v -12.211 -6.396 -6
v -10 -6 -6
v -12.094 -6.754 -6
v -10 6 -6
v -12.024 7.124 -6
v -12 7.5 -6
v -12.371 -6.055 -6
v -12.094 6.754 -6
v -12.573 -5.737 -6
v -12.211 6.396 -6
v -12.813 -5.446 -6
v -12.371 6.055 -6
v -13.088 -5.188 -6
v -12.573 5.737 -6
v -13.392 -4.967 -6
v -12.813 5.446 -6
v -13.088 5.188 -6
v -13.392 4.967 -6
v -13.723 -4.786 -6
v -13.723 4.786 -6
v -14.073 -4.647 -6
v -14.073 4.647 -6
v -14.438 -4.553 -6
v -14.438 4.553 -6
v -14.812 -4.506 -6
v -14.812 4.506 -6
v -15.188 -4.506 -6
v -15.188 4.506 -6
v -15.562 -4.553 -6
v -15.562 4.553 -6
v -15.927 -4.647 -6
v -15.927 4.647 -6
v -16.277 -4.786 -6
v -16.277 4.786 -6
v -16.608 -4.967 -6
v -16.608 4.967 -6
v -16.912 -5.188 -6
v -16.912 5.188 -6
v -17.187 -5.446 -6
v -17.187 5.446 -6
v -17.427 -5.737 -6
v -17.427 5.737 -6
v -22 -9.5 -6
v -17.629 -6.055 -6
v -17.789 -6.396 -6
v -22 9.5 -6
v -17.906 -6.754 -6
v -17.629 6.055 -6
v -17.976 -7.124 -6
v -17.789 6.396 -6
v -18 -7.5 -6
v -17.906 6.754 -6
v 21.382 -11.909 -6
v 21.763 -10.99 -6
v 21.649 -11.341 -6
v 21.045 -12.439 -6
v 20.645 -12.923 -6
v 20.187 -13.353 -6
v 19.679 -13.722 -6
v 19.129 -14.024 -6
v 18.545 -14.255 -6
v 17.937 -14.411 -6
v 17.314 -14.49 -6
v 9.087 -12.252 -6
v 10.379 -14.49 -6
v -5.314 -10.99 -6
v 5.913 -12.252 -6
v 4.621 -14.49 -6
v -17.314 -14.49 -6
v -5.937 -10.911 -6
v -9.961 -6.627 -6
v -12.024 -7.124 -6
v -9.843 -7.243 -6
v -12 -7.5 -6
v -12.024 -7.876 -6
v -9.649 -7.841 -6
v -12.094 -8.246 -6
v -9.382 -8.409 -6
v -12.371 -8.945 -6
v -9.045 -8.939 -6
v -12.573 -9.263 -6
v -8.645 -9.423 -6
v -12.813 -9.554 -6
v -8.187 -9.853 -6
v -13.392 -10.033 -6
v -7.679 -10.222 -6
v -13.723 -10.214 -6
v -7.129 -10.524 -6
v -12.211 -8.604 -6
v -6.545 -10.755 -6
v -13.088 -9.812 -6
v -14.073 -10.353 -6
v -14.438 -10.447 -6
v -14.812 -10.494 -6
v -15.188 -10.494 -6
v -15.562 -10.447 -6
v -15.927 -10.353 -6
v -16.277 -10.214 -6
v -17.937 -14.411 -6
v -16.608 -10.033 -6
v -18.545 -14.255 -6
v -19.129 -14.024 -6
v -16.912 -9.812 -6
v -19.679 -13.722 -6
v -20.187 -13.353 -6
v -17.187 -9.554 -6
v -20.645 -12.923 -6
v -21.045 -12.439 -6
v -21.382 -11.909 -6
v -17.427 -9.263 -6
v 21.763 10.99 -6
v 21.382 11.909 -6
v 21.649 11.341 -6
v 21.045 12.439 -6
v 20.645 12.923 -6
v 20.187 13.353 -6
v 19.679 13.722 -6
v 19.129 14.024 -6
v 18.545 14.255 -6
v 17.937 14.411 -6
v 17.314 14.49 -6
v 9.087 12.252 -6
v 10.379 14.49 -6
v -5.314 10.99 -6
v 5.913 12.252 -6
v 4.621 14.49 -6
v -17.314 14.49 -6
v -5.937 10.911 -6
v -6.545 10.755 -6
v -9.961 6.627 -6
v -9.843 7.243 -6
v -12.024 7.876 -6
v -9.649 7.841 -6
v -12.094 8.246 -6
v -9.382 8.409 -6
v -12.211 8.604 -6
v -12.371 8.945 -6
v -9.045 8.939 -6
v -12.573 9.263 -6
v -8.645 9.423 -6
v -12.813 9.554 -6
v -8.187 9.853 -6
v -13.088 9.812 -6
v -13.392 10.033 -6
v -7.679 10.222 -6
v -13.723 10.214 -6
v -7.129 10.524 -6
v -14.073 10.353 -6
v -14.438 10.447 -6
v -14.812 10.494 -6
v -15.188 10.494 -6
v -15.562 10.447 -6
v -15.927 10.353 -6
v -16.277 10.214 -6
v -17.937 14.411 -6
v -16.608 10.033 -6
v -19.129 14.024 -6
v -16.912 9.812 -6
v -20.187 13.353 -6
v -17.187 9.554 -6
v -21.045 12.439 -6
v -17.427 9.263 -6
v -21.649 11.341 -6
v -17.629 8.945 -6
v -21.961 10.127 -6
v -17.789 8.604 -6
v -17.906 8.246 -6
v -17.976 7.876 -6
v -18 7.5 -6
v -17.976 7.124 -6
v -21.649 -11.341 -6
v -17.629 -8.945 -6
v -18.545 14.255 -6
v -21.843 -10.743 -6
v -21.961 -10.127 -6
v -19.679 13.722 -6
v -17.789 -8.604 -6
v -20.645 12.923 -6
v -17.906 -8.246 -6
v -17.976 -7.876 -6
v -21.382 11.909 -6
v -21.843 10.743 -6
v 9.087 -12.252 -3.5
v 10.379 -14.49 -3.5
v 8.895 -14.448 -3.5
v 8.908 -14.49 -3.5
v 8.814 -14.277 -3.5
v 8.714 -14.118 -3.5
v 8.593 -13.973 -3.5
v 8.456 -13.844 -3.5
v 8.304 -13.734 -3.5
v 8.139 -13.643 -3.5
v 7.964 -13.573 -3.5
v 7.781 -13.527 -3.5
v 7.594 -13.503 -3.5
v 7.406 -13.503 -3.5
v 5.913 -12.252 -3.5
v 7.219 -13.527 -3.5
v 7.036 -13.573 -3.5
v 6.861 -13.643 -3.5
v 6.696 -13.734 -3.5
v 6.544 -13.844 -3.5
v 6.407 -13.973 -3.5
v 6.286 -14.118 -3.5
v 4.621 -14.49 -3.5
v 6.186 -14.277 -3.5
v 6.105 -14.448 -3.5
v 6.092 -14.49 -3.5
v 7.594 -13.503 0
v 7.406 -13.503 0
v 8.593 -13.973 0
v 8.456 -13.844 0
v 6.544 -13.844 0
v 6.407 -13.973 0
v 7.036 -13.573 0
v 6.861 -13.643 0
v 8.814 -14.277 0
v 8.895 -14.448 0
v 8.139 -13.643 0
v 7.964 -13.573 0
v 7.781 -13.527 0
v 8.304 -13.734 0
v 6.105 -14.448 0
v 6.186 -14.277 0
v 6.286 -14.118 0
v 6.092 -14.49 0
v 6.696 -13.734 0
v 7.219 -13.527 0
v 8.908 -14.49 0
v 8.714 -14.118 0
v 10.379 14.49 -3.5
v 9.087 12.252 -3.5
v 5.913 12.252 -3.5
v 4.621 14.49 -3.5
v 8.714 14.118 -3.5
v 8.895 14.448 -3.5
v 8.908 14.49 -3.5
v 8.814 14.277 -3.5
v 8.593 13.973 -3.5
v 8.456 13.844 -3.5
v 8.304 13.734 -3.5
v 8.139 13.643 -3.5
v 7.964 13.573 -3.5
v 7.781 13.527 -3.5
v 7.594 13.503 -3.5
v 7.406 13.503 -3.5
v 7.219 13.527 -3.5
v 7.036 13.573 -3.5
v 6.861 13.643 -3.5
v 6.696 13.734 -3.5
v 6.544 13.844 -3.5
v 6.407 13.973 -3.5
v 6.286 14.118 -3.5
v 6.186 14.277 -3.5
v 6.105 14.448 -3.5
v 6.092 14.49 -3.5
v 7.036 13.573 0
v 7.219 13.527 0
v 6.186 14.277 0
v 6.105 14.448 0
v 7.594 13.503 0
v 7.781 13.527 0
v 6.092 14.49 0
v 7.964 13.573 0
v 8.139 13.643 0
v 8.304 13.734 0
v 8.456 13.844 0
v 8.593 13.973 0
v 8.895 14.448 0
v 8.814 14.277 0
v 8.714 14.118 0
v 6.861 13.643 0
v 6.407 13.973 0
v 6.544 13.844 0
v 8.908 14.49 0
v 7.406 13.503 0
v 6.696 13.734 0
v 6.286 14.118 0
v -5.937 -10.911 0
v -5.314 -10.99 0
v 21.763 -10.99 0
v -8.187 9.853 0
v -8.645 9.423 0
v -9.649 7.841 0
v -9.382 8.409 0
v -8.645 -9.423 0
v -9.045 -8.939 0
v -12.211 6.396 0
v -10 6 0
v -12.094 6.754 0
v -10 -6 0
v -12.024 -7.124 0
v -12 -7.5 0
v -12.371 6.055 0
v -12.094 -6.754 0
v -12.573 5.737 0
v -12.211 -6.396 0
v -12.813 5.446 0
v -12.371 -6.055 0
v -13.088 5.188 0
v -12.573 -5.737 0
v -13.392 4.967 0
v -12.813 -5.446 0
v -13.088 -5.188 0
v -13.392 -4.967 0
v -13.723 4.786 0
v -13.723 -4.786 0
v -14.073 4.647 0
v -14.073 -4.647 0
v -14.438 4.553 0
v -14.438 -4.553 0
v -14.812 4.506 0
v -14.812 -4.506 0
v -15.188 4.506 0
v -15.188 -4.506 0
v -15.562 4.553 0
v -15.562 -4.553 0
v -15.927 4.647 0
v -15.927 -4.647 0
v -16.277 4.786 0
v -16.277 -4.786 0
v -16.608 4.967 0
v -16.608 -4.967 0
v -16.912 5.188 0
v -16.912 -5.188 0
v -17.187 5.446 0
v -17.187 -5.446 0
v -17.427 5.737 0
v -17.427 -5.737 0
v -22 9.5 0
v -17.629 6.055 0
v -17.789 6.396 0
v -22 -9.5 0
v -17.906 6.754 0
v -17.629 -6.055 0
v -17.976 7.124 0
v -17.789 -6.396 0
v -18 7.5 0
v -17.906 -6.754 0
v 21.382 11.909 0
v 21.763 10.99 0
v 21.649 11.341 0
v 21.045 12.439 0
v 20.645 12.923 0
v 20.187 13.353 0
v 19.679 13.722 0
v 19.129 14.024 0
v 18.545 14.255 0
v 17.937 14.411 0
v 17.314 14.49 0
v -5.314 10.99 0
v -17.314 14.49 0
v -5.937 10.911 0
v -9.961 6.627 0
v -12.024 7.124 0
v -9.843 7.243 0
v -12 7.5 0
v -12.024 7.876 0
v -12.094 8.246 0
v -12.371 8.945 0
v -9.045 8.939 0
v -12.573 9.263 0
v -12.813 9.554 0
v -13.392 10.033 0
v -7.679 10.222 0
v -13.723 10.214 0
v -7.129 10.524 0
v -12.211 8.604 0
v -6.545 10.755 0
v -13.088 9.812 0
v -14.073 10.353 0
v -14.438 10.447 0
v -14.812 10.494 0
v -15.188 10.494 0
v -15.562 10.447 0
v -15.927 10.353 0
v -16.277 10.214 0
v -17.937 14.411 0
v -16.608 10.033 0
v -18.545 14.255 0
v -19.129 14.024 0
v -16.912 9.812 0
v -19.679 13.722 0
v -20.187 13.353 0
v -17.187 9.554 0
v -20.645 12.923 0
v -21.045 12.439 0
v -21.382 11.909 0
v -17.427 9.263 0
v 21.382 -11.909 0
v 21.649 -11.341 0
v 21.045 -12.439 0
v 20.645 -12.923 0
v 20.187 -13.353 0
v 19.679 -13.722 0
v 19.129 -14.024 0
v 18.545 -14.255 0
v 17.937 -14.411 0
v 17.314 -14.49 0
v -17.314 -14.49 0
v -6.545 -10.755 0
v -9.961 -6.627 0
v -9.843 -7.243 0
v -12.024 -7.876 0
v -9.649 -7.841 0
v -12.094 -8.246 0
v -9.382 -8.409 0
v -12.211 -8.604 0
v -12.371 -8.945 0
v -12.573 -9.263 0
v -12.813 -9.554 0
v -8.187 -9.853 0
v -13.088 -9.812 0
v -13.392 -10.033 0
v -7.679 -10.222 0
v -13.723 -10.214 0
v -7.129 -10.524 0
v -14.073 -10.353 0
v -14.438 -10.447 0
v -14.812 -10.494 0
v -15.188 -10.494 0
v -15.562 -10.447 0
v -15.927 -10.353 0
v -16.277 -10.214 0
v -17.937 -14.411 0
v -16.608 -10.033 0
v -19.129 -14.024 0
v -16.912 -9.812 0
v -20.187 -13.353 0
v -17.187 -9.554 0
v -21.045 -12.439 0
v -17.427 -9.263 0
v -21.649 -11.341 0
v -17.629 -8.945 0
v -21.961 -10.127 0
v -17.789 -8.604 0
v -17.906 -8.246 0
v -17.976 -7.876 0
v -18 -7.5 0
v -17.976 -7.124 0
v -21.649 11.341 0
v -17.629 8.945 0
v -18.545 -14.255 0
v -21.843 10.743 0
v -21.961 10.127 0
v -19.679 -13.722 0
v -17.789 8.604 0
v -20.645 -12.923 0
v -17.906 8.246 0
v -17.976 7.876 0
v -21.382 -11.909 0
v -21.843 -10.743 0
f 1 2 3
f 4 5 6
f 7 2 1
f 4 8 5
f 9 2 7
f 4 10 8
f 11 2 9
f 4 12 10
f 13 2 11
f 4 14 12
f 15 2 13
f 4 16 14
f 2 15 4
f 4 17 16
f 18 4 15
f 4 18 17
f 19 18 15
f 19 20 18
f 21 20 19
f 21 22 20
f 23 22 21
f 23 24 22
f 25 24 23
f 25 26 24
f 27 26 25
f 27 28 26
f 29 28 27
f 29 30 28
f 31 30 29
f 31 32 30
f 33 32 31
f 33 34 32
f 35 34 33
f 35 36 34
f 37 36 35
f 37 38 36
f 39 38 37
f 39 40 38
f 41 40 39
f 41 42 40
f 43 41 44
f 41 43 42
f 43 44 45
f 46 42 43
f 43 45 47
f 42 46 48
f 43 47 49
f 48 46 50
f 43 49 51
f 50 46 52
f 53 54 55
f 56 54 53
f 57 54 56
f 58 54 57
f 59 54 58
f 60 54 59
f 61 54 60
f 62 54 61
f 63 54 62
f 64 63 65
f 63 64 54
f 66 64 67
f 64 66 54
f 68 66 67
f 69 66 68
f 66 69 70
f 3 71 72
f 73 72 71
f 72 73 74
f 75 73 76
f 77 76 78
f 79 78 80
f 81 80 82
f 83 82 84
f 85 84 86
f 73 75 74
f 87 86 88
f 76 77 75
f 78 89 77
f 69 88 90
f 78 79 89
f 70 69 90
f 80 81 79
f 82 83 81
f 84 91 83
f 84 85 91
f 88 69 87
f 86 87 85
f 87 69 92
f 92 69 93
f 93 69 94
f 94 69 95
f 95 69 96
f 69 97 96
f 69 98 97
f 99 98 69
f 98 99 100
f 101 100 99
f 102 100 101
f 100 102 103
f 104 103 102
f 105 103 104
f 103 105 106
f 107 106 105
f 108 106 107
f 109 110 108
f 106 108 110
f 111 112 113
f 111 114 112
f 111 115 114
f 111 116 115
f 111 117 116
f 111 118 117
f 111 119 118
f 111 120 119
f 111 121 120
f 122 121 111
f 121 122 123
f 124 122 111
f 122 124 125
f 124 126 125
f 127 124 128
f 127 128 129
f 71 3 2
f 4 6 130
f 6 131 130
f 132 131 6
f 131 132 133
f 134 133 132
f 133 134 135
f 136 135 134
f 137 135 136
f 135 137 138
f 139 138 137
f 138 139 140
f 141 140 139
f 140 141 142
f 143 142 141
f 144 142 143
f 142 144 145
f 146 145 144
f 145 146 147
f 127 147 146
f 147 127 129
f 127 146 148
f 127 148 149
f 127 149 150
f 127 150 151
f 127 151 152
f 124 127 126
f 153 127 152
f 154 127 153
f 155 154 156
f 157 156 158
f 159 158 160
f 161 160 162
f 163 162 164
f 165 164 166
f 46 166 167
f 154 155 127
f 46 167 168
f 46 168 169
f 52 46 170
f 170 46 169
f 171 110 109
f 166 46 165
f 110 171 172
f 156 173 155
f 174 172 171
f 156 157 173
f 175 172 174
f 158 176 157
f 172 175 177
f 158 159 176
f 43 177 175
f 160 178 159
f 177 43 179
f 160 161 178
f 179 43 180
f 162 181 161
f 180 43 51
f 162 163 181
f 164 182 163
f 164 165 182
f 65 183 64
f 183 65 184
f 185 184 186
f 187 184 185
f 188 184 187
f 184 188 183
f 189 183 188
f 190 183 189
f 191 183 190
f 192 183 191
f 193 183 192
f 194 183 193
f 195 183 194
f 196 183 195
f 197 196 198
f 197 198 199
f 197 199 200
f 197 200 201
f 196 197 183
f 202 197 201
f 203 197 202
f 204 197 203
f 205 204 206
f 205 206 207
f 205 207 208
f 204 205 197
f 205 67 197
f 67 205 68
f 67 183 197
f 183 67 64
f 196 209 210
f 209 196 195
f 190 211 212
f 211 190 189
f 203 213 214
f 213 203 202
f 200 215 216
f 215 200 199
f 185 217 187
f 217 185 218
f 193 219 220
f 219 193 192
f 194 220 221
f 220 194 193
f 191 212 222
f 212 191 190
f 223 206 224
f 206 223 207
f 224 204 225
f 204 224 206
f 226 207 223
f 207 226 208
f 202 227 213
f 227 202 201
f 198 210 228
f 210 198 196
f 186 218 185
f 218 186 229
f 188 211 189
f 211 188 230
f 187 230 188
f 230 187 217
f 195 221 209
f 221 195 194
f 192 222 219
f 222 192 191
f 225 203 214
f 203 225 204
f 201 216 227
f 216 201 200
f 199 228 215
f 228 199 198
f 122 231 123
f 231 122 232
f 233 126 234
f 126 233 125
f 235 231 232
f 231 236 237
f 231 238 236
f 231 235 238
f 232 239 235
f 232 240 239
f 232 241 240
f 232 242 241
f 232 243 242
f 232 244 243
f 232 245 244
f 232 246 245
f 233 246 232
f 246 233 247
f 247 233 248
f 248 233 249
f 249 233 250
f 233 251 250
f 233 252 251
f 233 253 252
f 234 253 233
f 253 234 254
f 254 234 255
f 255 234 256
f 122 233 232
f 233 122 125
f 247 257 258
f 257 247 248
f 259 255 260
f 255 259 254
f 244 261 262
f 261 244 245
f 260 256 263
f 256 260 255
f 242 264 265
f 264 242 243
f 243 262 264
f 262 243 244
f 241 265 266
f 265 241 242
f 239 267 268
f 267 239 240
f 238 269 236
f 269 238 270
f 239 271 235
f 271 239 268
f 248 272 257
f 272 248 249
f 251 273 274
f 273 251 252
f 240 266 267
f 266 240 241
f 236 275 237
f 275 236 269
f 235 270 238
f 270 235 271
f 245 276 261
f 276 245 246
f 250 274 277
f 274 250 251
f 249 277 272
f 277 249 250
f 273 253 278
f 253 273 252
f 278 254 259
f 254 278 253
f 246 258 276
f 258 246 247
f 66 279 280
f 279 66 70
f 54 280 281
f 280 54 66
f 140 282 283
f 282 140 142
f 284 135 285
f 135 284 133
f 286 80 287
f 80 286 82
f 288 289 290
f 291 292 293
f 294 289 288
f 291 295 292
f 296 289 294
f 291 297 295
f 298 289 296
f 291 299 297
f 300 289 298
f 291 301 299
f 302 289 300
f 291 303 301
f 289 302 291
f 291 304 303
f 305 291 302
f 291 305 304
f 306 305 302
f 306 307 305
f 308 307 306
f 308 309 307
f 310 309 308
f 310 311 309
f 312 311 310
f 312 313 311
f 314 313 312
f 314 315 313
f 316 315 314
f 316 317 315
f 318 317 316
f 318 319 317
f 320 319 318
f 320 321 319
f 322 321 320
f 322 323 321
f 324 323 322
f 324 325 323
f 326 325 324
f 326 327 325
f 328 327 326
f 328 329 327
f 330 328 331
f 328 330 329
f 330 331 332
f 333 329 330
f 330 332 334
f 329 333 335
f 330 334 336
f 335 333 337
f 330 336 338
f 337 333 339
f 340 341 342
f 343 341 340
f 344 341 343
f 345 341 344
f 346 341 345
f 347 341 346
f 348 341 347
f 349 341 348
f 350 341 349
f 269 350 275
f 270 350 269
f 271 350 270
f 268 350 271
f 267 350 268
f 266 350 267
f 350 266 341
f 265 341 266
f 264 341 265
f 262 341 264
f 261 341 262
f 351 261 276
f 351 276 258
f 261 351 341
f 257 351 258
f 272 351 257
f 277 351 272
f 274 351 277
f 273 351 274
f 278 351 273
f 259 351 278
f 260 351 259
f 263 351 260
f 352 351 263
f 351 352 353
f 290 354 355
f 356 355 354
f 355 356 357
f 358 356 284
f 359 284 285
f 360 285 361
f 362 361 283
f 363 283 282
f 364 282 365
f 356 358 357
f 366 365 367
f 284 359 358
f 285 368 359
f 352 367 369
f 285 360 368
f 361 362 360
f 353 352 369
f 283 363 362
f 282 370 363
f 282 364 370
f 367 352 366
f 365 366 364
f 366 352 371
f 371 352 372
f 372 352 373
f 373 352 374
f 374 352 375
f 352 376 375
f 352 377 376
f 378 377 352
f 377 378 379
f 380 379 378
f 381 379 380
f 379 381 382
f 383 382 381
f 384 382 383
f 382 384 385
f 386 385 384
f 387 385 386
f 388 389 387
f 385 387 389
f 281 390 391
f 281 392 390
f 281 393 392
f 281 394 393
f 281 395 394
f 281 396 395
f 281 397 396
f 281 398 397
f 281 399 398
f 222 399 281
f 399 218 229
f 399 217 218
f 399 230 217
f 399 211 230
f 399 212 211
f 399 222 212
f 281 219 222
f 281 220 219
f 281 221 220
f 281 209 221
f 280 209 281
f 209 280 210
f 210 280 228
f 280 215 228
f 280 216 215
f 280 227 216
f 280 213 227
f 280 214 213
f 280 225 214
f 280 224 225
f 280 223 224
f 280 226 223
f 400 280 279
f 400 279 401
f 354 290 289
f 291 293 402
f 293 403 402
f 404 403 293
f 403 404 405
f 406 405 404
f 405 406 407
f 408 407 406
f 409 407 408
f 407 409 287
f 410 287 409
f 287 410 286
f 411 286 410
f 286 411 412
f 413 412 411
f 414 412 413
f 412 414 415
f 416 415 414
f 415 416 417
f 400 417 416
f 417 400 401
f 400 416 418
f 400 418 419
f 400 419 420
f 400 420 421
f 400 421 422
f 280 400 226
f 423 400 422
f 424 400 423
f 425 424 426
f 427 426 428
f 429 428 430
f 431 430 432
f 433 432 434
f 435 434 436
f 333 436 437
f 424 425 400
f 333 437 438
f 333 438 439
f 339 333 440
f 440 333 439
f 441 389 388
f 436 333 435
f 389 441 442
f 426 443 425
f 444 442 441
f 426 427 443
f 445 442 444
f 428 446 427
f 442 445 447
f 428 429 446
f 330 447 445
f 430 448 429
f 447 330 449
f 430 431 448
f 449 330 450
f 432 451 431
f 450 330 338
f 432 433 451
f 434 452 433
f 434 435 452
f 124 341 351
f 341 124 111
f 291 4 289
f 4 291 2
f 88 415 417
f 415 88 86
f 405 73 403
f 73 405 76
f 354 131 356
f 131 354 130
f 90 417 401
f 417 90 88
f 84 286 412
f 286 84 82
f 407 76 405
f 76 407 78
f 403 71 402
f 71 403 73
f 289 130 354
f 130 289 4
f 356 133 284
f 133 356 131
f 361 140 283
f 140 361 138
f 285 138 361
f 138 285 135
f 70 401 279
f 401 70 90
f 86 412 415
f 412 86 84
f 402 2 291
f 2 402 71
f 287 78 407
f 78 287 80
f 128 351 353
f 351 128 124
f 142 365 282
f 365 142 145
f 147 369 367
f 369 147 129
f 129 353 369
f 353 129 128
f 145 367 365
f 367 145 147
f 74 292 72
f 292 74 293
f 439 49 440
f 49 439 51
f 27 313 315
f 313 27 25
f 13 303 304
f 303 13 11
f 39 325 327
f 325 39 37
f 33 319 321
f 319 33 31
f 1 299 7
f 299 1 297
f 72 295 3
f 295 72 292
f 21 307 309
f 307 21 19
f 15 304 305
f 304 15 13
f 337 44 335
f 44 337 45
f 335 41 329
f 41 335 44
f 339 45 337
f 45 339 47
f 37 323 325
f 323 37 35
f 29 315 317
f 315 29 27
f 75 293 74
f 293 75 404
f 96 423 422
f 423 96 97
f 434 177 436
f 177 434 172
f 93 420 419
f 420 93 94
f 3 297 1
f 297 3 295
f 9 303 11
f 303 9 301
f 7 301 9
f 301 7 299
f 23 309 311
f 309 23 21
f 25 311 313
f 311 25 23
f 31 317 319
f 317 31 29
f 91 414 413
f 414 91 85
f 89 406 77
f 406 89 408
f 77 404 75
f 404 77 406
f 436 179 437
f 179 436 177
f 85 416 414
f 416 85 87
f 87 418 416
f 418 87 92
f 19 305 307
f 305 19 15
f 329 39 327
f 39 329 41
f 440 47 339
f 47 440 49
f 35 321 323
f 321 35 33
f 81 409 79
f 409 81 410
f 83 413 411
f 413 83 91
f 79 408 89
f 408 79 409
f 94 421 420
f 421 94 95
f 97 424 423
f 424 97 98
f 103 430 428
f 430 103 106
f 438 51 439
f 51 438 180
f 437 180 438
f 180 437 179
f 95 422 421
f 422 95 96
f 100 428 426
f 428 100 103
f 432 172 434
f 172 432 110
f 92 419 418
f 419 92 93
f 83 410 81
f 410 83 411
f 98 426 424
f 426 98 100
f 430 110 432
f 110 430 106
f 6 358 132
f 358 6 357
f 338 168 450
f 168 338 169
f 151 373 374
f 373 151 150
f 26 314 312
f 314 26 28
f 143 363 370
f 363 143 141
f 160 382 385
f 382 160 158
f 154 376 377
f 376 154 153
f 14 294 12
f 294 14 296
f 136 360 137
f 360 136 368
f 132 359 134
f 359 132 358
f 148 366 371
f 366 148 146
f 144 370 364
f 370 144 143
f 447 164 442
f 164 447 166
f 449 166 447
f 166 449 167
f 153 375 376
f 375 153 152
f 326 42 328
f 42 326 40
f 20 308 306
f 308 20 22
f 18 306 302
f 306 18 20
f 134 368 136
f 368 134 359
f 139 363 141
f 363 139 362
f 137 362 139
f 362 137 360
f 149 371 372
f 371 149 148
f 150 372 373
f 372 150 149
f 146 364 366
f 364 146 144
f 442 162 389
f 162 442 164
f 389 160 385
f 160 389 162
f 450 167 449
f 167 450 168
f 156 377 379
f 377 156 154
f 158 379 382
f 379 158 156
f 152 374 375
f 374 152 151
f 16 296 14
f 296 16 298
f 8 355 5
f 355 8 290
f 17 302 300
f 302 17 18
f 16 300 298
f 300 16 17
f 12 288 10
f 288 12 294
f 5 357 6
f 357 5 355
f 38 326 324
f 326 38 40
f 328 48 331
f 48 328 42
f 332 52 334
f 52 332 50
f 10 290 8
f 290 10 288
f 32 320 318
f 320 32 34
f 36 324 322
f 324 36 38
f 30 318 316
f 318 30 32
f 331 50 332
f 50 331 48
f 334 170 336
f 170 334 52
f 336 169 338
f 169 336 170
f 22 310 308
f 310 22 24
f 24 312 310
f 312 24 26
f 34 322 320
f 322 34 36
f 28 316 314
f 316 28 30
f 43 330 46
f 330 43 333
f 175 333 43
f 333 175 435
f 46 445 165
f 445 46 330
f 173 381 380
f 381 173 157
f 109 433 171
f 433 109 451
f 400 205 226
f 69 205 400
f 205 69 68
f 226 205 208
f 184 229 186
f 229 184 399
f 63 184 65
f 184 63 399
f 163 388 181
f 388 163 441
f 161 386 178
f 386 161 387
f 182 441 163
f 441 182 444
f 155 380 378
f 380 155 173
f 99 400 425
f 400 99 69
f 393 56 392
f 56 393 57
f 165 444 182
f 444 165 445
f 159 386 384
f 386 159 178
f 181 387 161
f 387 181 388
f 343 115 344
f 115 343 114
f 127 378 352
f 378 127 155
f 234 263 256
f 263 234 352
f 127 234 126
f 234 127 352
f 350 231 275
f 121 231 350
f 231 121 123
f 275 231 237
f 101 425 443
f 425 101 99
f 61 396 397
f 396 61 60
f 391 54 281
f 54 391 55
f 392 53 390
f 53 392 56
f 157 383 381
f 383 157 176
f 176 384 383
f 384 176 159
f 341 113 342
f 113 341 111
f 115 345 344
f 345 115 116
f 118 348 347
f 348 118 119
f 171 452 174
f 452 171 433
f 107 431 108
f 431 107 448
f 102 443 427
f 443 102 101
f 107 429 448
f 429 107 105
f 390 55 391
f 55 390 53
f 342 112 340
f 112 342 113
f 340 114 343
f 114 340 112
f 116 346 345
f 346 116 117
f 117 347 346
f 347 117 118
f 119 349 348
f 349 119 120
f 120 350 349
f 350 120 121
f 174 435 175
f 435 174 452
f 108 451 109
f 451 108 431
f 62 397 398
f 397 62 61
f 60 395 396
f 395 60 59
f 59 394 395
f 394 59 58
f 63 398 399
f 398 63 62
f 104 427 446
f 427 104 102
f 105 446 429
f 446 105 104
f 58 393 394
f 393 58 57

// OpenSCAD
$fn = 50;


difference() {
	union() {
		translate(v = [0, 0, -6]) {
			hull() {
				translate(v = [-17.0000000000, 9.5000000000, 0]) {
					cylinder(h = 6, r = 5);
				}
				translate(v = [17.0000000000, 9.5000000000, 0]) {
					cylinder(h = 6, r = 5);
				}
				translate(v = [-17.0000000000, -9.5000000000, 0]) {
					cylinder(h = 6, r = 5);
				}
				translate(v = [17.0000000000, -9.5000000000, 0]) {
					cylinder(h = 6, r = 5);
				}
			}
		}
	}
	union() {
		translate(v = [7.5000000000, -15, -6]) {
			rotate(a = [0, 0, 0]) {
				difference() {
					union() {
						linear_extrude(height = 2.5000000000) {
							polygon(points = [[3.1735000000, 0.0000000000], [1.5867500000, 2.7483316189], [-1.5867500000, 2.7483316189], [-3.1735000000, 0.0000000000], [-1.5867500000, -2.7483316189], [1.5867500000, -2.7483316189]]);
						}
						translate(v = [0, 0, -50.0000000000]) {
							cylinder(h = 100, r = 1.5000000000);
						}
						translate(v = [0, 0, -50.0000000000]) {
							cylinder(h = 100, r = 1.5000000000);
						}
						translate(v = [0, 0, -50.0000000000]) {
							cylinder(h = 100, r = 1.5000000000);
						}
					}
					union();
				}
			}
		}
		translate(v = [7.5000000000, 15, -6]) {
			rotate(a = [0, 0, 0]) {
				difference() {
					union() {
						linear_extrude(height = 2.5000000000) {
							polygon(points = [[3.1735000000, 0.0000000000], [1.5867500000, 2.7483316189], [-1.5867500000, 2.7483316189], [-3.1735000000, 0.0000000000], [-1.5867500000, -2.7483316189], [1.5867500000, -2.7483316189]]);
						}
						translate(v = [0, 0, -50.0000000000]) {
							cylinder(h = 100, r = 1.5000000000);
						}
						translate(v = [0, 0, -50.0000000000]) {
							cylinder(h = 100, r = 1.5000000000);
						}
						translate(v = [0, 0, -50.0000000000]) {
							cylinder(h = 100, r = 1.5000000000);
						}
					}
					union();
				}
			}
		}
		translate(v = [0, 0, -3]) {
			rotate(a = [0, 0, 180]) {
				difference() {
					union() {
						translate(v = [-10, 0, -3]) {
							#hull() {
								translate(v = [-15.0000000000, 6.0000000000, 0]) {
									cylinder(h = 6, r = 5);
								}
								translate(v = [15.0000000000, 6.0000000000, 0]) {
									cylinder(h = 6, r = 5);
								}
								translate(v = [-15.0000000000, -6.0000000000, 0]) {
									cylinder(h = 6, r = 5);
								}
								translate(v = [15.0000000000, -6.0000000000, 0]) {
									cylinder(h = 6, r = 5);
								}
							}
						}
					}
					union();
				}
			}
		}
		translate(v = [-15.0000000000, -7.5000000000, -50.0000000000]) {
			cylinder(h = 100, r = 3.0000000000);
		}
		translate(v = [-15.0000000000, 7.5000000000, -50.0000000000]) {
			cylinder(h = 100, r = 3.0000000000);
		}
		translate(v = [-15.0000000000, 7.5000000000, -50.0000000000]) {
			cylinder(h = 100, r = 3.0000000000);
		}
		translate(v = [0.0000000000, 7.5000000000, -50.0000000000]) {
			cylinder(h = 100, r = 3.0000000000);
		}
		translate(v = [15.0000000000, 7.5000000000, -50.0000000000]) {
			cylinder(h = 100, r = 3.0000000000);
		}
		translate(v = [-15.0000000000, -7.5000000000, -50.0000000000]) {
			cylinder(h = 100, r = 3.0000000000);
		}
		translate(v = [0.0000000000, -7.5000000000, -50.0000000000]) {
			cylinder(h = 100, r = 3.0000000000);
		}
		translate(v = [15.0000000000, -7.5000000000, -50.0000000000]) {
			cylinder(h = 100, r = 3.0000000000);
		}
	}
}
